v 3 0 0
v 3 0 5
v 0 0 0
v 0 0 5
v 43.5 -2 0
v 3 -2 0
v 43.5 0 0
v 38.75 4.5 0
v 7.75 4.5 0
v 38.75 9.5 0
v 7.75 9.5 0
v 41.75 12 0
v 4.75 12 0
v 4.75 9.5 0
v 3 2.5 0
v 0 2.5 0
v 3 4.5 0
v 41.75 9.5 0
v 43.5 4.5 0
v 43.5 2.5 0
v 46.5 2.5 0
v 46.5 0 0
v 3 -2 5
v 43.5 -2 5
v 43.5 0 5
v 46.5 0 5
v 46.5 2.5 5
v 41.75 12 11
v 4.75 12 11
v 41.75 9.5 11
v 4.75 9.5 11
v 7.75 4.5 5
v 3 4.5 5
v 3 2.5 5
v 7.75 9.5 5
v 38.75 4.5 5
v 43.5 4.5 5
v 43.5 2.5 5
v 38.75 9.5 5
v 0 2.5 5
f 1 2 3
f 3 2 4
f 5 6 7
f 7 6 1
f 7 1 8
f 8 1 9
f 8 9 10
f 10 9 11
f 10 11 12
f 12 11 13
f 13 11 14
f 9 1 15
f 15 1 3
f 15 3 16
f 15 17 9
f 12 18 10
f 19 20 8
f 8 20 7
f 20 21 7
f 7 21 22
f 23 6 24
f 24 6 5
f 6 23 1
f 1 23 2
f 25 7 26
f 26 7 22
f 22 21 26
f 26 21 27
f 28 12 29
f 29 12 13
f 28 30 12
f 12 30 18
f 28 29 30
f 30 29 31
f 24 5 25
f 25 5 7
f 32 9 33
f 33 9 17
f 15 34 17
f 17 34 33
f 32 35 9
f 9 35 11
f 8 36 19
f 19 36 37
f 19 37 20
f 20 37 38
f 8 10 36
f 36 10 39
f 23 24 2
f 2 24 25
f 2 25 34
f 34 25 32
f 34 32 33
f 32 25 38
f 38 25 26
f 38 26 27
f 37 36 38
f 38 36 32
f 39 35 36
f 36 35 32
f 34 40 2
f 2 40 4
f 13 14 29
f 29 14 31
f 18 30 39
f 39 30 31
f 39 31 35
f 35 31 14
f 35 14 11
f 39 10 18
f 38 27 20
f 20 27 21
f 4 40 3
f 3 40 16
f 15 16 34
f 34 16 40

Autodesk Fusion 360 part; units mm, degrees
sketch "Sketch1" plane through (0, 0, 0) normal (0, 0, 1) x (1, 0, 0)
  line L0 (0, 0) -> (46.5, 0)
  line L1 (46.5, 0) -> (46.5, 15)
  line L2 (46.5, 15) -> (0, 15)
  line L3 (0, 15) -> (0, 0)
  dimension "d1" = 46.5
  dimension "d2" = 15
extrude "Extrude1" add sketch "Sketch1" along normal blind 11.5
sketch "Sketch2" plane through (0, 0, 11.5) normal (0, 0, 1) x (-1, 0, 0)
  line L0 (0, -15) -> (0, 0)
  line L1 (0, 0) -> (-46.5, 0)
  line L2 (-46.5, 0) -> (-46.5, -15)
  line L3 (-46.5, -15) -> (0, -15)
  line L4 (0, -15) -> (-4.75, -15)
  line L5 (-4.75, -15) -> (-4.75, -12.5)
  line L6 (-4.75, -12.5) -> (0, -12.5)
  line L7 (0, -12.5) -> (0, -15)
  dimension "d5" = 4.75
  dimension "d6" = 2.5
extrude "Extrude2" cut sketch "Sketch2" against normal blind 11.5 contours L0 L3 L4 L5 L6 L7
sketch "Sketch4" plane through (0, 0, 11.5) normal (0, 0, 1) x (-1, 0, 0)
  line L0 (-4.75, -12.5) -> (0, -12.5)
  line L1 (0, -12.5) -> (0, 0)
  line L2 (0, 0) -> (-46.5, 0)
  line L3 (-46.5, 0) -> (-46.5, -15)
  line L4 (-46.5, -15) -> (-4.75, -15)
  line L5 (-4.75, -15) -> (-4.75, -12.5)
  line L6 (-46.5, -15) -> (-41.75, -15)
  line L7 (-41.75, -15) -> (-41.75, -12.5)
  line L8 (-41.75, -12.5) -> (-46.5, -12.5)
  line L9 (-46.5, -12.5) -> (-46.5, -15)
  dimension "d11" = 4.75
  dimension "d12" = 2.5
extrude "Extrude3" cut sketch "Sketch4" against normal blind 11.5 contours L3 L4 L6 L7 L8 L9
sketch "Sketch5" plane through (0, 0, 11.5) normal (0, 0, 1) x (-1, 0, 0)
  line L0 (-41.75, -12.5) -> (-41.75, -15)
  line L1 (-41.75, -15) -> (-4.75, -15)
  line L2 (-4.75, -15) -> (-4.75, -12.5)
  line L3 (-4.75, -12.5) -> (0, -12.5)
  line L4 (0, -12.5) -> (0, 0)
  line L5 (0, 0) -> (-46.5, 0)
  line L6 (-46.5, 0) -> (-46.5, -12.5)
  line L7 (-46.5, -12.5) -> (-41.75, -12.5)
  line L8 (0, -12.5) -> (-4.75, -12.5)
  line L9 (-4.75, -12.5) -> (-4.75, -2.5)
  line L10 (-4.75, -2.5) -> (0, -2.5)
  line L11 (0, -2.5) -> (0, -12.5)
  dimension "d15" = 10
extrude "Extrude4" cut sketch "Sketch5" against normal blind 11.5 contours L3 L4 L8 L9 L10 L11
sketch "Sketch7" plane through (0, 0, 11.5) normal (0, 0, 1) x (-1, 0, 0)
  line L0 (-4.75, -2.5) -> (0, -2.5)
  line L1 (0, -2.5) -> (0, 0)
  line L2 (0, 0) -> (-46.5, 0)
  line L3 (-46.5, 0) -> (-46.5, -12.5)
  line L4 (-46.5, -12.5) -> (-41.75, -12.5)
  line L5 (-41.75, -12.5) -> (-41.75, -15)
  line L6 (-41.75, -15) -> (-4.75, -15)
  line L7 (-4.75, -15) -> (-4.75, -2.5)
  line L8 (-41.75, -12.5) -> (-46.5, -12.5)
  line L9 (-46.5, -12.5) -> (-46.5, -2.5)
  line L10 (-46.5, -2.5) -> (-41.75, -2.5)
  line L11 (-41.75, -2.5) -> (-41.75, -12.5)
  dimension "d18" = 10
extrude "Extrude5" cut sketch "Sketch7" against normal blind 11.5 contours L3 L4 L8 L9 L10 L11
sketch "Sketch8" plane through (0, 0, 11.5) normal (0, 0, 1) x (-1, 0, 0)
  line L0 (-41.75, -2.5) -> (-41.75, -15)
  line L1 (-41.75, -15) -> (-4.75, -15)
  line L2 (-4.75, -15) -> (-4.75, -2.5)
  line L3 (-4.75, -2.5) -> (0, -2.5)
  line L4 (0, -2.5) -> (0, 0)
  line L5 (0, 0) -> (-46.5, 0)
  line L6 (-46.5, 0) -> (-46.5, -2.5)
  line L7 (-46.5, -2.5) -> (-41.75, -2.5)
  line L8 (-4.75, -2.5) -> (-7.75, -2.5)
  line L9 (-7.75, -2.5) -> (-7.75, -12.5)
  line L10 (-7.75, -12.5) -> (-4.75, -12.5)
  line L11 (-4.75, -12.5) -> (-4.75, -2.5)
  dimension "d21" = 3
  dimension "d22" = 10
extrude "Extrude6" cut sketch "Sketch8" against normal blind 11.5 contours L2 L8 L9 L10 L11
sketch "Sketch9" plane through (0, 0, 11.5) normal (0, 0, 1) x (-1, 0, 0)
  line L0 (-4.75, -12.5) -> (-7.75, -12.5)
  line L1 (-7.75, -12.5) -> (-7.75, -2.5)
  line L2 (-7.75, -2.5) -> (0, -2.5)
  line L3 (0, -2.5) -> (0, 0)
  line L4 (0, 0) -> (-46.5, 0)
  line L5 (-46.5, 0) -> (-46.5, -2.5)
  line L6 (-46.5, -2.5) -> (-41.75, -2.5)
  line L7 (-41.75, -2.5) -> (-41.75, -15)
  line L8 (-41.75, -15) -> (-4.75, -15)
  line L9 (-4.75, -15) -> (-4.75, -12.5)
  line L10 (-41.75, -2.5) -> (-38.75, -2.5)
  line L11 (-38.75, -2.5) -> (-38.75, -12.5)
  line L12 (-38.75, -12.5) -> (-41.75, -12.5)
  line L13 (-41.75, -12.5) -> (-41.75, -2.5)
  dimension "d25" = 3
  dimension "d26" = 10
extrude "Extrude7" cut sketch "Sketch9" against normal blind 11.5 contours L7 L10 L11 L12 L13
sketch "Sketch10" plane through (0, 0, 11.5) normal (0, 0, 1) x (-1, 0, 0)
  line L0 (-46.5, -2.5) -> (-38.75, -2.5)
  line L1 (-38.75, -2.5) -> (-38.75, -12.5)
  line L2 (-38.75, -12.5) -> (-41.75, -12.5)
  line L3 (-41.75, -12.5) -> (-41.75, -15)
  line L4 (-41.75, -15) -> (-4.75, -15)
  line L5 (-4.75, -15) -> (-4.75, -12.5)
  line L6 (-4.75, -12.5) -> (-7.75, -12.5)
  line L7 (-7.75, -12.5) -> (-7.75, -2.5)
  line L8 (-7.75, -2.5) -> (0, -2.5)
  line L9 (0, -2.5) -> (0, 0)
  line L10 (0, 0) -> (-46.5, 0)
  line L11 (-46.5, 0) -> (-46.5, -2.5)
  line L12 (0, 0) -> (-46.5, 0)
  line L13 (-46.5, 0) -> (-46.5, -12.5)
  line L14 (-46.5, -12.5) -> (0, -12.5)
  line L15 (0, -12.5) -> (0, 0)
  dimension "d29" = 46.5
extrude "Extrude8" cut sketch "Sketch10" against normal blind 3.5 contours L0 L1 L7 L8 L9 L10 L11 L12 L13 L14 L15
sketch "Sketch11" plane through (0, 0, 0) normal (0, 0, -1) x (1, 0, 0)
  line L0 (38.75, -2.5) -> (46.5, -2.5)
  line L1 (46.5, -2.5) -> (46.5, 0)
  line L2 (46.5, 0) -> (0, 0)
  line L3 (0, 0) -> (0, -2.5)
  line L4 (0, -2.5) -> (7.75, -2.5)
  line L5 (7.75, -2.5) -> (7.75, -12.5)
  line L6 (7.75, -12.5) -> (4.75, -12.5)
  line L7 (4.75, -12.5) -> (4.75, -15)
  line L8 (4.75, -15) -> (41.75, -15)
  line L9 (41.75, -15) -> (41.75, -12.5)
  line L10 (41.75, -12.5) -> (38.75, -12.5)
  line L11 (38.75, -12.5) -> (38.75, -2.5)
  line L12 (0, 0) -> (46.5, 0)
  line L13 (46.5, 0) -> (46.5, -12.5)
  line L14 (46.5, -12.5) -> (0, -12.5)
  line L15 (0, -12.5) -> (0, 0)
  dimension "d32" = 46.5
  dimension "d33" = 12.5
extrude "Extrude9" cut sketch "Sketch11" against normal blind 3.5 contours L0 L1 L2 L3 L4 L5 L11 L12 L13 L14 L15
extrude "Extrude10" add 1 faces at (18.0833, 9.1667, 3.5) along direction (0, 0, -1) blind 3.5
extrude "Extrude11" cut 1 faces at (28.4167, 5.8333, 8) along direction (0, 0, -1) blind 3.5
extrude "Extrude12" add 1 faces at (18.0833, 12.5, 9.1667) along direction (0, -1, 0) blind 3
extrude "Extrude13" cut 1 faces at (29.4167, 15, 3.8333) along direction (0, -1, 0) blind 3
extrude "Extrude14" add 1 faces at (29.4167, 10.3333, 11.5) along direction (0, 0, 1) blind 1
extrude "Extrude15" add 1 faces at (17.0833, 12, 8.3333) along direction (0, 1, 0) blind 0.5
extrude "Extrude16" cut 1 faces at (17.0833, 11.5, 12.5) along direction (0, 0, -1) blind 0.5
extrude "Extrude17" add 1 faces at (31, 0, 3) along direction (0, -1, 0) blind 1
extrude "Extrude18" cut 1 faces at (31, -1, 3) along direction (0, 1, 0) blind 0.5
extrude "Extrude19" add 1 faces at (18.0833, 7.1667, 4.5) along direction (0, 0, 1) blind 0.5
sketch "Sketch12" plane through (38.75, 0, 0) normal (1, 0, 0) x (0, 1, 0)
  line L0 (9.5, 0) -> (9.5, 5)
  line L1 (9.5, 5) -> (2.5, 5)
  line L2 (2.5, 5) -> (2.5, 0)
  line L3 (2.5, 0) -> (9.5, 0)
  line L4 (2.5, 5) -> (4.5, 5)
  line L5 (4.5, 5) -> (4.5, 0)
  line L6 (4.5, 0) -> (2.5, 0)
  line L7 (2.5, 0) -> (2.5, 5)
  dimension "d56" = 2
extrude "Extrude20" add sketch "Sketch12" along normal blind 4.75 contours L1 L2 L3 L4 L5 L6 L7
sketch "Sketch13" plane through (7.75, 0, 0) normal (-1, 0, 0) x (0, -1, 0)
  line L0 (-9.5, 5) -> (-9.5, 0)
  line L1 (-9.5, 0) -> (-2.5, 0)
  line L2 (-2.5, 0) -> (-2.5, 5)
  line L3 (-2.5, 5) -> (-9.5, 5)
  line L4 (-2.5, 5) -> (-4.5, 5)
  line L5 (-4.5, 5) -> (-4.5, 0)
  line L6 (-4.5, 0) -> (-2.5, 0)
  line L7 (-2.5, 0) -> (-2.5, 5)
  dimension "d59" = 2
extrude "Extrude21" add sketch "Sketch13" along normal blind 4.75 contours L1 L2 L3 L4 L5 L6 L7
sketch "Sketch14" plane through (0, -0.5, 0) normal (0, -1, 0) x (1, 0, 0)
  line L0 (0, 5) -> (0, 0)
  line L1 (0, 0) -> (46.5, 0)
  line L2 (46.5, 0) -> (46.5, 5)
  line L3 (46.5, 5) -> (0, 5)
  line L4 (3, 0) -> (43.5, 0)
  line L5 (43.5, 0) -> (43.5, 5)
  line L6 (43.5, 5) -> (3, 5)
  line L7 (3, 5) -> (3, 0)
  dimension "d62" = 40.5
  dimension "d63" = 3
extrude "Extrude22" add sketch "Sketch14" along normal blind 2 contours L1 L3 L4 L5 L6 L7
extrude "Extrude23" cut 1 faces at (17.0833, 11.5, 12) along direction (0, 0, -1) blind 1
extrude "Extrude24" cut 1 faces at (29.4167, 12.5, 7.3333) along direction (0, -1, 0) blind 0.5
extrude "Extrude25" cut 1 faces at (45.5, -0.5, 3.3333) along direction (0, 1, 0) blind 0.5
extrude "Extrude26" cut 1 faces at (16.5, -2.5, 3.3333) along direction (0, 1, 0) blind 0.5
extrude "Extrude27" cut 1 faces at (1, -0.5, 3.3333) along direction (0, 1, 0) blind 0.5
